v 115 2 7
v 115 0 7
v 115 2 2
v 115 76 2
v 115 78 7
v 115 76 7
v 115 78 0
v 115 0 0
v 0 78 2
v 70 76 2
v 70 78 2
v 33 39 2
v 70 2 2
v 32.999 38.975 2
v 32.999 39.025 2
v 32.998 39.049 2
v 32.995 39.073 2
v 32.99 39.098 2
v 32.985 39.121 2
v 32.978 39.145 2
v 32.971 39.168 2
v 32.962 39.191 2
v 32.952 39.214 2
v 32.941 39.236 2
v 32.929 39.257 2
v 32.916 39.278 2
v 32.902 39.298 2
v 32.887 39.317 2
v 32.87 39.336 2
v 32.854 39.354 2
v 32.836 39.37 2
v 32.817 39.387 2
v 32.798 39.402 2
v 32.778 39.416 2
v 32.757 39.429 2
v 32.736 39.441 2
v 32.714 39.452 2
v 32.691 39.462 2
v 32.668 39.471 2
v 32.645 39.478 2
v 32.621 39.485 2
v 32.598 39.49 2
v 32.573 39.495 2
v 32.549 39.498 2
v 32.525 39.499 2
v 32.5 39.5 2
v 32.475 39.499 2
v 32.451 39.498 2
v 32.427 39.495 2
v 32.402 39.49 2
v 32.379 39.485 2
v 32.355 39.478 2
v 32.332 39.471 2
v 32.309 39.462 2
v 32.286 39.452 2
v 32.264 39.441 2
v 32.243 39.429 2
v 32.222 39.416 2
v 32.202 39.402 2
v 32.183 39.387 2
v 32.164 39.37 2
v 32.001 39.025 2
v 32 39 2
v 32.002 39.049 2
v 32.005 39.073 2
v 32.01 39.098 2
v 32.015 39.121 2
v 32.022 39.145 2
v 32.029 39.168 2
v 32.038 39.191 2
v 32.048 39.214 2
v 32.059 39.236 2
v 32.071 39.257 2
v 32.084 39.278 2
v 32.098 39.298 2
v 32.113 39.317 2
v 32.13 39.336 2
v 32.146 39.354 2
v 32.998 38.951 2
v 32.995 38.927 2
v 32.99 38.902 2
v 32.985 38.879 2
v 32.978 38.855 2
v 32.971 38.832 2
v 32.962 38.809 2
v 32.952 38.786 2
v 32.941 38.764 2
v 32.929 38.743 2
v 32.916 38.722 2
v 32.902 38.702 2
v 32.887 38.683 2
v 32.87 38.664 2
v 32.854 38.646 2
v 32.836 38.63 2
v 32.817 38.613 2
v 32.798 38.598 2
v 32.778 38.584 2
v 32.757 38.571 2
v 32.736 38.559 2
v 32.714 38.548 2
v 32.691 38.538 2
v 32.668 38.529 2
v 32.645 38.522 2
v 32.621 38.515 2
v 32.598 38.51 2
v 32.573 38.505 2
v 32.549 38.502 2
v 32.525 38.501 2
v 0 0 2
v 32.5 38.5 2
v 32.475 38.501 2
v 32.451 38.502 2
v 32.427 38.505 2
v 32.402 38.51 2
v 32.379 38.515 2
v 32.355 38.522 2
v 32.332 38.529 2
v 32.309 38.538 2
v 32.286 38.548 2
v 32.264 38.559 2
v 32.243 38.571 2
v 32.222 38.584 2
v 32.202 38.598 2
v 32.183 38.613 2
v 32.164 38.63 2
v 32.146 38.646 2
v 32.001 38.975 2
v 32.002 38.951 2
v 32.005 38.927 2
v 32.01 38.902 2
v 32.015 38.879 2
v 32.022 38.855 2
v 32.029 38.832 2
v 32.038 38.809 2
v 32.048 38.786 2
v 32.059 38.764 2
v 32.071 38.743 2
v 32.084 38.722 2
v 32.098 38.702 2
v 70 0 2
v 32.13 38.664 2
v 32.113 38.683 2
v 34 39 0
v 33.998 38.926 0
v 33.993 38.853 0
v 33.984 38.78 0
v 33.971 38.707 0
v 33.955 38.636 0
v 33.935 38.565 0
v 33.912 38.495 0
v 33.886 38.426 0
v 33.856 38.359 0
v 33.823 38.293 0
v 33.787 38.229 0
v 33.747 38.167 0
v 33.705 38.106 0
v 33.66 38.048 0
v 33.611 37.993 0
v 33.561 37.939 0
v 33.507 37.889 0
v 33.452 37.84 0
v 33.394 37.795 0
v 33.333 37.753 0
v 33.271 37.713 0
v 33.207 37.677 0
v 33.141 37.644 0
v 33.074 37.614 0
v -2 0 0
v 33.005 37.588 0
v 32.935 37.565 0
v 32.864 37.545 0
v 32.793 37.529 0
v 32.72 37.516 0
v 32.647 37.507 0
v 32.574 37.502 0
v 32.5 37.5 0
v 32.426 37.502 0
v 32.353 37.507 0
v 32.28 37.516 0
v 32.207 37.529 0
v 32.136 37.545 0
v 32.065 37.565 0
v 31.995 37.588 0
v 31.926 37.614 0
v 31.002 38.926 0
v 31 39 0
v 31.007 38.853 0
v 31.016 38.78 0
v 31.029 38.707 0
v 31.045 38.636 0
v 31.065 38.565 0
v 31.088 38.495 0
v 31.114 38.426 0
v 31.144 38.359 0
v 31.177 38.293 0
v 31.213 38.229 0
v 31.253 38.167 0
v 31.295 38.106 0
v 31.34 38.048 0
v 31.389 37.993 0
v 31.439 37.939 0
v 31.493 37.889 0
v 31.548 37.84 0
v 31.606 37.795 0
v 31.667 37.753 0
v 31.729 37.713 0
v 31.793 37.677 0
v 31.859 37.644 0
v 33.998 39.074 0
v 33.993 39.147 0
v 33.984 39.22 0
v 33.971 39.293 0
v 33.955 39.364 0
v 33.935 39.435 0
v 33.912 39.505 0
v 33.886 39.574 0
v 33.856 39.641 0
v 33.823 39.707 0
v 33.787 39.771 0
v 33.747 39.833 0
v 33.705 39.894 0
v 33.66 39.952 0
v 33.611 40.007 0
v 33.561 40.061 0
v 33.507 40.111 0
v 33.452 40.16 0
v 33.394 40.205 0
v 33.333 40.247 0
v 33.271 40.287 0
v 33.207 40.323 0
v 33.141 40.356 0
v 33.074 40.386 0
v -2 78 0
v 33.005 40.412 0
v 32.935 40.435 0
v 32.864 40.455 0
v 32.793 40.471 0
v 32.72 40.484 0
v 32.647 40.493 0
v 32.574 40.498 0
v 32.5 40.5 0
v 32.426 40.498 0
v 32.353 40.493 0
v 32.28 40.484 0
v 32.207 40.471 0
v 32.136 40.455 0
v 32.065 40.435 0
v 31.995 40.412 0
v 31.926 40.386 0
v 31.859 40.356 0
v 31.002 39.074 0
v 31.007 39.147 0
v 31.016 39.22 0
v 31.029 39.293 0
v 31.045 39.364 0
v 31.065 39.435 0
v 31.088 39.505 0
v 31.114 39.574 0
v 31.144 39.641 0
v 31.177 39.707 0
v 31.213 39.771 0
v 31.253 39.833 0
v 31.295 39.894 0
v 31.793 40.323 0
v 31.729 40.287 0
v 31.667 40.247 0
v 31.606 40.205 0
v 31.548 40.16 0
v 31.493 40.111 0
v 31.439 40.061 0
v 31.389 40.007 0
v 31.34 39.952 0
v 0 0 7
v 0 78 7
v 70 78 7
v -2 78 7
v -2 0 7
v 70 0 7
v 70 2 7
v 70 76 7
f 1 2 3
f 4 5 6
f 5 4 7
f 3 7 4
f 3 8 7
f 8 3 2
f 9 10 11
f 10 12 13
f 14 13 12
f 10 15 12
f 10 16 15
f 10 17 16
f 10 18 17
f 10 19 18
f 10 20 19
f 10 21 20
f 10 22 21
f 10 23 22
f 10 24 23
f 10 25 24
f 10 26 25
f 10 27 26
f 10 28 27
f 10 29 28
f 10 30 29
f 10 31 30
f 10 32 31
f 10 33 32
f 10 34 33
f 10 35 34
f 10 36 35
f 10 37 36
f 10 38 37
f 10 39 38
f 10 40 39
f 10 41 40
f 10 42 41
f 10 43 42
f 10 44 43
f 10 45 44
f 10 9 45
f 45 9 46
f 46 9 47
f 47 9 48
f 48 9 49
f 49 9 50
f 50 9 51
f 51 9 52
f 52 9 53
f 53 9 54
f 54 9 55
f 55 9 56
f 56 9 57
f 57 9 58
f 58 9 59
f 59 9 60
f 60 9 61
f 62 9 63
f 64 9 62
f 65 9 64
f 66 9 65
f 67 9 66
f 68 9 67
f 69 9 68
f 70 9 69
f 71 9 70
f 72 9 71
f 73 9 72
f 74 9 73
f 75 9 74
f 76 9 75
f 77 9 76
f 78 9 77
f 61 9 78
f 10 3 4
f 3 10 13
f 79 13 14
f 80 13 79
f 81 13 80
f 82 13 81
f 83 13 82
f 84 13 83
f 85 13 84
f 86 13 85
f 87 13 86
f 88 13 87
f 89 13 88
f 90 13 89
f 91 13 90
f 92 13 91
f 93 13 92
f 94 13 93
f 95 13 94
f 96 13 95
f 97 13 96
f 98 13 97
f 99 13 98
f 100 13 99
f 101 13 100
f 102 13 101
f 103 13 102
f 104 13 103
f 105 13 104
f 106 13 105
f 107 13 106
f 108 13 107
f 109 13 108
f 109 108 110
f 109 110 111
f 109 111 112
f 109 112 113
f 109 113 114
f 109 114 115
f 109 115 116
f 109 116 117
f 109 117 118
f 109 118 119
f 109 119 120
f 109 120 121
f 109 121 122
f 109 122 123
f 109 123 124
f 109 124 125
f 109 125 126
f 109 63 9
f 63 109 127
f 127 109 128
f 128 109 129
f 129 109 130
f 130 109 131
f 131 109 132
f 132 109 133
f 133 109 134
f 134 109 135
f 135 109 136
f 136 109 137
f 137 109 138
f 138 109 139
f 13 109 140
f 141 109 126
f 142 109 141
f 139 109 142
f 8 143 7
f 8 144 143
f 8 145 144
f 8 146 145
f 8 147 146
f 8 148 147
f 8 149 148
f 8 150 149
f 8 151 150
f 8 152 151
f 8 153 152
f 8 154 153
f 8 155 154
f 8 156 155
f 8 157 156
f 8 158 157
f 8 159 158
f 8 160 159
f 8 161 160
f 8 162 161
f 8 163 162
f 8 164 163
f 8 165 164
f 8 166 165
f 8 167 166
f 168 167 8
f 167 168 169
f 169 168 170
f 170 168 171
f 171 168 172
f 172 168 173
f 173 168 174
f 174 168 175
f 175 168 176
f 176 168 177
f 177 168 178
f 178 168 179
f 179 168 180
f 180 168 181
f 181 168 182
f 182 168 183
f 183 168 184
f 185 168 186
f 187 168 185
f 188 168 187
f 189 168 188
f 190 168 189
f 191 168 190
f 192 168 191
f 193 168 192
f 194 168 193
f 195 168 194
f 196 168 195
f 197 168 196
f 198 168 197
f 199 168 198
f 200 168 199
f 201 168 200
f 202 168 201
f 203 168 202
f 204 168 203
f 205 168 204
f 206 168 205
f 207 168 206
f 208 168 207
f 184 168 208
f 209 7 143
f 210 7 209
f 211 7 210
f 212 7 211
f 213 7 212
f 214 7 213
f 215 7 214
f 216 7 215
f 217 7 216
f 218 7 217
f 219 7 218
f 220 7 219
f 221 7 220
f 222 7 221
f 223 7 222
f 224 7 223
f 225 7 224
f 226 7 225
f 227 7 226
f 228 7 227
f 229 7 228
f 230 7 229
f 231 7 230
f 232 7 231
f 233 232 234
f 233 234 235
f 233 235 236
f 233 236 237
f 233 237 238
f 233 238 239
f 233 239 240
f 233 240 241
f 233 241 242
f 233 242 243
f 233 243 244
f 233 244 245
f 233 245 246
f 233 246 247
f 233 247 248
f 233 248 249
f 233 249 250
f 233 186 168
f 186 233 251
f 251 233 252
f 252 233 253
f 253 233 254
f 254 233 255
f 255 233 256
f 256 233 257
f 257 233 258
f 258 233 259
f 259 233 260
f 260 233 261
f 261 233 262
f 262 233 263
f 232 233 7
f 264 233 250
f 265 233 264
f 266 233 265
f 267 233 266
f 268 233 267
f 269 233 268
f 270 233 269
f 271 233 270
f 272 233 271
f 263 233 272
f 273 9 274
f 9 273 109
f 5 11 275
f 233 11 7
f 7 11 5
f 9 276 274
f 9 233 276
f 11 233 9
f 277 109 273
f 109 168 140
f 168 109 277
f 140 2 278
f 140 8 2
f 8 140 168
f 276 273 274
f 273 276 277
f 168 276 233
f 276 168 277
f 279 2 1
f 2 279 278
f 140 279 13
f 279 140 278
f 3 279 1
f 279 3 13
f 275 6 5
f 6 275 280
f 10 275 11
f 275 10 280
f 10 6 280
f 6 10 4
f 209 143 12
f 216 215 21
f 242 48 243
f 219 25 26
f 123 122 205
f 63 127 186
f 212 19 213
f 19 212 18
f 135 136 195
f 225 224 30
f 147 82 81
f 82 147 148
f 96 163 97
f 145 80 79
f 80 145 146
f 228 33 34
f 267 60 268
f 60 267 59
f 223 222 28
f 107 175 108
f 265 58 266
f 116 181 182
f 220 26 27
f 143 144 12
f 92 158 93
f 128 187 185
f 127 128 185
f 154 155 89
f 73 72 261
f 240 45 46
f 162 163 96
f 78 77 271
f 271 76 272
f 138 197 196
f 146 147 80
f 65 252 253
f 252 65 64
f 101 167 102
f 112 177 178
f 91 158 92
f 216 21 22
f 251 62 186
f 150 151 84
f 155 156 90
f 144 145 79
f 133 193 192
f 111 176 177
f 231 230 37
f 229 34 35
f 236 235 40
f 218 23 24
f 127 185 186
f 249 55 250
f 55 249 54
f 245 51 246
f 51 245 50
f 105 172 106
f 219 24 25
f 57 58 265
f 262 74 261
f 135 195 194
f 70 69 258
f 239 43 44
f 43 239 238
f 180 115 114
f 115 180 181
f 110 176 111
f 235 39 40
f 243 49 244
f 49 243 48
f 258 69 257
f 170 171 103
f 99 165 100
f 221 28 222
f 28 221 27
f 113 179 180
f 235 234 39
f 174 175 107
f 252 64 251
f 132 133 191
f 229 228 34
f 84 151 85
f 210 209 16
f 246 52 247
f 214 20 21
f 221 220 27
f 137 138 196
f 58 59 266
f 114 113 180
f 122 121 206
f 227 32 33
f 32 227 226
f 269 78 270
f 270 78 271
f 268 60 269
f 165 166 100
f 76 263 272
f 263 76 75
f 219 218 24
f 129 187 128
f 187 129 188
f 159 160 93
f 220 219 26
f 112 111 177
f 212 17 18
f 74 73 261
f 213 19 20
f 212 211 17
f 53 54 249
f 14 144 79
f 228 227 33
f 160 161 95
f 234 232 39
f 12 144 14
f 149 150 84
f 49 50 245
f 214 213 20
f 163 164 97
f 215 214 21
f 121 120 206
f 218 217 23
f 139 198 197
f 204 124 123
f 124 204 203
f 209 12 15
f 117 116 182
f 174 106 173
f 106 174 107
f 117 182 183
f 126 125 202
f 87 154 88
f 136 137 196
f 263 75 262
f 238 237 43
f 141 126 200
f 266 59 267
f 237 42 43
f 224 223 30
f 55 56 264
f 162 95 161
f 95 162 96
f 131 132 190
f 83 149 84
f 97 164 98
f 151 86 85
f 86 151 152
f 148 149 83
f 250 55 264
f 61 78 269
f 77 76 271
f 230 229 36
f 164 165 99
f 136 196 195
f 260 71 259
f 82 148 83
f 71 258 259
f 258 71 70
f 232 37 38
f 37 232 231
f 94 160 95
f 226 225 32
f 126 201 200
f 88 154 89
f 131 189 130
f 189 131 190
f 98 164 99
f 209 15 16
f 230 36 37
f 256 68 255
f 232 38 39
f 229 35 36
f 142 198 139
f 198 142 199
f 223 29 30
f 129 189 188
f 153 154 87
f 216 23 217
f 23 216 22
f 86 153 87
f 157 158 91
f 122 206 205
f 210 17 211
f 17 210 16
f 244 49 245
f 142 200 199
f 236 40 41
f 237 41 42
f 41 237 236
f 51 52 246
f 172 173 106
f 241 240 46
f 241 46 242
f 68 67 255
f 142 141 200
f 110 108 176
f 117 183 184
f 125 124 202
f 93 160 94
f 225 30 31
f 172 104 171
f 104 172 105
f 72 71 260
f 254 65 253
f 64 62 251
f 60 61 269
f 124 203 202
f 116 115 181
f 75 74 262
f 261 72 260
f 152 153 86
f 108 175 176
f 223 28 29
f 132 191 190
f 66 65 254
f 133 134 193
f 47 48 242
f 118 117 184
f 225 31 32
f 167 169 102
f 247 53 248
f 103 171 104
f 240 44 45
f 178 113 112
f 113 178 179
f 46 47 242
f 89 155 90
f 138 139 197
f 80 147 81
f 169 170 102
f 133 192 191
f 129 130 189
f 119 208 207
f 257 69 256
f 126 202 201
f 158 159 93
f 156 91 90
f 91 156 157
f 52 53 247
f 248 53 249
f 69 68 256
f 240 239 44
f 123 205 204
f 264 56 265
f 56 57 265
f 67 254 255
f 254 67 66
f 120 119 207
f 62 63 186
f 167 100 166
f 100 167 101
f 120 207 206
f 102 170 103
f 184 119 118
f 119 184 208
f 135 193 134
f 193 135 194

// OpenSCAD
//###############################################################################
//# Drill Template                                                              #
//###############################################################################
//#    Copyright 2025 Dirk Heisswolf                                            #
//#    This file is part of the DrillTemplate project.                          #
//#                                                                             #
//#    This project is free software: you can redistribute it and/or modify     #
//#    it under the terms of the GNU General Public License as published by     #
//#    the Free Software Foundation, either version 3 of the License, or        #
//#    (at your option) any later version.                                      #
//#                                                                             #
//#    This project is distributed in the hope that it will be useful,          #
//#    but WITHOUT ANY WARRANTY; without even the implied warranty of           #
//#    MERCHANTABILITY or FITNESS FOR A PARTICULAR PURPOSE.  See the            #
//#    GNU General Public License for more details.                             #
//#                                                                             #
//#    You should have received a copy of the GNU General Public License        #
//#    along with this project.  If not, see <http://www.gnu.org/licenses/>.    #
//#                                                                             #
//###############################################################################
//# Description:                                                                #
//#   A replacement cap for a metal berrm stick.                                #
//#                                                                             #
//###############################################################################
//# Version History:                                                            #
//#   February 25, 2025                                                         #
//#      - Initial release                                                      #
//#                                                                             #
//###############################################################################

templateT =  2;   // Thickness of the template
holeD     =  1;   // Drill hole diameter
holeX     = 32.5; // Drill hole X offset
holeY     = 39;   // Drill hole Y offset
$fn=128;

module drillTemplate() {
   difference() {
       union() {
           translate([0,0,0]) cube([50+2*holeX,2*holeY,templateT]);
           translate([-templateT,0,0]) cube([templateT,2*holeY,5+templateT]);
           translate([5+2*holeX,0,0]) cube([45,templateT,5+templateT]);
           translate([5+2*holeX,2*holeY-templateT,0]) cube([45,templateT,5+templateT]);
       }
       union() {
          translate([holeX,holeY,-10]) cylinder(h=30, d=holeD);
          translate([holeX,holeY,0]) cylinder(h=templateT, d2=holeD, d1=3);
       }
   }
} 
drillTemplate();
